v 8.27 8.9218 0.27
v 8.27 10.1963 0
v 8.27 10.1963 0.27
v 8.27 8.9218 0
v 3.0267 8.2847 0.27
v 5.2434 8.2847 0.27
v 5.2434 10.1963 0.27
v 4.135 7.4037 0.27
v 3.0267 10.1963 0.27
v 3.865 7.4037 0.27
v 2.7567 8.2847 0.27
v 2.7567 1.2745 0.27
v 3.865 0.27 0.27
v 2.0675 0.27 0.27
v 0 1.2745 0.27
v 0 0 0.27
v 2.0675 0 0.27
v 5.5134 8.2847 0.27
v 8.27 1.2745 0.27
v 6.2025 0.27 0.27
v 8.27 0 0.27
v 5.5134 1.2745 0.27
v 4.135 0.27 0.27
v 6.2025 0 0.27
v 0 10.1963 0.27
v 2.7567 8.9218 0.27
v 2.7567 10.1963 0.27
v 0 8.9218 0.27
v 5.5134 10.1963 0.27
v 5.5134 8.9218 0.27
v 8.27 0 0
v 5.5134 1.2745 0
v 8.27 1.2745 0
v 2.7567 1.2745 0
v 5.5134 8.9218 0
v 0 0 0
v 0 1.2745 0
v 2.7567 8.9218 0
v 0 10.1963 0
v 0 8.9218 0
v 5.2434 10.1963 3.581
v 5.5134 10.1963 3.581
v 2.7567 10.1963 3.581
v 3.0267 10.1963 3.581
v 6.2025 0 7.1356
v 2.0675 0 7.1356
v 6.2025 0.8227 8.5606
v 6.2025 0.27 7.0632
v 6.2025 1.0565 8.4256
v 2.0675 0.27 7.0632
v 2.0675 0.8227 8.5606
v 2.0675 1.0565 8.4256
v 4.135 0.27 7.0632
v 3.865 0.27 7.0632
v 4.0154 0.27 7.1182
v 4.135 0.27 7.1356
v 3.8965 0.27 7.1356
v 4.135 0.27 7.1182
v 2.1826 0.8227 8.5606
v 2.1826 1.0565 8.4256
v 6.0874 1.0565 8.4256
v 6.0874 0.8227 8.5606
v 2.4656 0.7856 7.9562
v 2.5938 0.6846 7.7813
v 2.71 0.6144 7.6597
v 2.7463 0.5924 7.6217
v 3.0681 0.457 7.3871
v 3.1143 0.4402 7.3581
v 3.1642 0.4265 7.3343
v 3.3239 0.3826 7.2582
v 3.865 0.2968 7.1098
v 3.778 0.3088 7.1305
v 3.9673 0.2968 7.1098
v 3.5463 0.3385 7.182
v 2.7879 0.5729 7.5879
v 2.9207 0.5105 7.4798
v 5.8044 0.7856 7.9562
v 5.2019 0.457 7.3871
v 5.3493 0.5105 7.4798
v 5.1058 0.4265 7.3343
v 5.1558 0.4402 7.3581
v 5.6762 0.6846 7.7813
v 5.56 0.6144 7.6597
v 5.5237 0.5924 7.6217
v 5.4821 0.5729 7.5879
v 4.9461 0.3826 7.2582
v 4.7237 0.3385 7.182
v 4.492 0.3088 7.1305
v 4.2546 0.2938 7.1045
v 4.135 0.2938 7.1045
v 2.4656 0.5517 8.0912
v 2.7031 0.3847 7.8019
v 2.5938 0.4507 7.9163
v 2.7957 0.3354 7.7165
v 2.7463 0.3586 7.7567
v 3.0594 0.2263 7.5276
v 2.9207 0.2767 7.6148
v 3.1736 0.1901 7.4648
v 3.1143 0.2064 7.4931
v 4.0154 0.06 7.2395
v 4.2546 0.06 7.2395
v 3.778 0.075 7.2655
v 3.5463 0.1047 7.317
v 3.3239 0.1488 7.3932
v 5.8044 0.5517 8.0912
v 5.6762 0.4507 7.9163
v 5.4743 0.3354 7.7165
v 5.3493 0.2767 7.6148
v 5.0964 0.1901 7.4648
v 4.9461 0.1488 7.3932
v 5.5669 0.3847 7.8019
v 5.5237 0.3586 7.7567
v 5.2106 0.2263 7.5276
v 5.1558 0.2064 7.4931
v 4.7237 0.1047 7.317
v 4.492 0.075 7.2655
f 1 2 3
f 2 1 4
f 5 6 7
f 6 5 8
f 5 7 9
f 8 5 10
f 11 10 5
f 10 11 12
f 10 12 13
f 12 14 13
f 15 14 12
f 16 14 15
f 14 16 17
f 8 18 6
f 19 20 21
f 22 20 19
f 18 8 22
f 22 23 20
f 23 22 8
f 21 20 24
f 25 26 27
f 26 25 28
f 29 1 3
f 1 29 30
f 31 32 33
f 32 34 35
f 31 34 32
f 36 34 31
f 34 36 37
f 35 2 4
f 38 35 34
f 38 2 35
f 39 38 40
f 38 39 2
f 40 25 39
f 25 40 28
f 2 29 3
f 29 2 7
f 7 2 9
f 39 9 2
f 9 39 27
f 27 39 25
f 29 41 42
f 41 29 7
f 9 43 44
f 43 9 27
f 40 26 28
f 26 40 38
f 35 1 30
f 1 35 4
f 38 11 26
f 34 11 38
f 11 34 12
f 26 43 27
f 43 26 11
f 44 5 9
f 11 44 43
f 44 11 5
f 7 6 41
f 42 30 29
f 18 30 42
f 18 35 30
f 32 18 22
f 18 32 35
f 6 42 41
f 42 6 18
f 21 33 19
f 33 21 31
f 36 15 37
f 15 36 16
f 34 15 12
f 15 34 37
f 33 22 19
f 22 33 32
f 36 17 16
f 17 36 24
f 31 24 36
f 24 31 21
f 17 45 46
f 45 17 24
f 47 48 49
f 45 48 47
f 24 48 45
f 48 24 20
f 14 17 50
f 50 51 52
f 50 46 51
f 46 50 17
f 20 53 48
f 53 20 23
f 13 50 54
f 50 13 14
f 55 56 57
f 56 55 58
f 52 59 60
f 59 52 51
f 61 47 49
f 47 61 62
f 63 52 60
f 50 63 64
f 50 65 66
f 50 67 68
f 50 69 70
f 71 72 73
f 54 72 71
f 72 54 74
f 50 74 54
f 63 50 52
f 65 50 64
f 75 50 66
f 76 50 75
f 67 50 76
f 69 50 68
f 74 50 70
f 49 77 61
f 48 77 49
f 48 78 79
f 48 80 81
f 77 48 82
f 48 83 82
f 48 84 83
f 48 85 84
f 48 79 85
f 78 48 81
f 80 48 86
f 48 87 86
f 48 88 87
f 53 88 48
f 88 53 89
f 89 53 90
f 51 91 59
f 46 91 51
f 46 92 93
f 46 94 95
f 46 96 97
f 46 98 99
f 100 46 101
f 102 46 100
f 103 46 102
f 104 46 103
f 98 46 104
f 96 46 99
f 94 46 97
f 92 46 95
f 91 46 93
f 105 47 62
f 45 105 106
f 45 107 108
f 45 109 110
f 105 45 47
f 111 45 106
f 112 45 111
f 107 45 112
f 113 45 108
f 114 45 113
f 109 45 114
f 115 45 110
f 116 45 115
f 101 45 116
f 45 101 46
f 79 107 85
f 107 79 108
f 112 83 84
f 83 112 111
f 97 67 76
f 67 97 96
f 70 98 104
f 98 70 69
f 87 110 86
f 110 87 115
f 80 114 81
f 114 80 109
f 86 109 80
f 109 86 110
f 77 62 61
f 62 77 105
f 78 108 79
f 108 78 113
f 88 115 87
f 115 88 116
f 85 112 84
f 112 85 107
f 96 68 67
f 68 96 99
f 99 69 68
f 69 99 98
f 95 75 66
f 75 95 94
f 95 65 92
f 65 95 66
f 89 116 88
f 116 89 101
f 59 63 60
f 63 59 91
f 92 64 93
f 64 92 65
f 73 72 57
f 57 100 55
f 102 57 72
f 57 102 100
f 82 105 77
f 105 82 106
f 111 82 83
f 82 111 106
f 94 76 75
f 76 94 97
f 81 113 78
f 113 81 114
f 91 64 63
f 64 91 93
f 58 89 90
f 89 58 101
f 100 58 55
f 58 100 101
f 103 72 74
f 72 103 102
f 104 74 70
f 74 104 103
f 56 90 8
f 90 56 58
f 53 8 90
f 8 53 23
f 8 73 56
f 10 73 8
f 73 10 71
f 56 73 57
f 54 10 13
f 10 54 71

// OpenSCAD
$fn = 50;

union() {
    translate([2.7567, 0, 0]) {
        cube([2.7567, 10.1963, 0.27]);
    };
    union() {
        translate([0, 8.9218, 0]) {
            cube([8.27, 1.2745, 0.27]);
        };
        translate([2.7567, 10.1963, 0]) {
            rotate([180, 270, 0]) {
                linear_extrude(height=0.27) {
                    polygon([[0, 0], [3.5810150446487, 0], [0, 2.0675]]);
                };
            };
        };
        translate([5.2434, 10.1963, 0]) {
            rotate([180, 270, 0]) {
                linear_extrude(height=0.27) {
                    polygon([[0, 0], [3.5810150446487, 0], [0, 2.0675]]);
                };
            };
        };
    };
    difference() {
        union() {
            cube([8.27, 1.2745, 0.27]);
            translate([2.0675, 0, 0]) {
                cube([4.135, 0.27, 7.1356]);
            };
            translate([2.0675, 0, 7.1356]) {
                rotate([-30, 0, 0]) {
                    cube([4.135, 0.27, 1.6454]);
                };
            };
        };
        hull() {
            translate([4.135, 2.4828739063185, 8.036]) {
                rotate([60, 0, 0]) {
                    cylinder(h=6, r2=1.905, r1=1.905);
                };
            };
            translate([4.135, 2.4828739063185, 9.936]) {
                rotate([60, 0, 0]) {
                    cylinder(h=6, r2=2.667, r1=2.667);
                };
            };
        };
    };
    translate([4.135, 0.27, 0.27]) {
        rotate([0, 270, 0]) {
            linear_extrude(height=0.27) {
                polygon([[0, 0], [6.8656, 0], [0, 7.1337329716196]]);
            };
        };
    };
};
